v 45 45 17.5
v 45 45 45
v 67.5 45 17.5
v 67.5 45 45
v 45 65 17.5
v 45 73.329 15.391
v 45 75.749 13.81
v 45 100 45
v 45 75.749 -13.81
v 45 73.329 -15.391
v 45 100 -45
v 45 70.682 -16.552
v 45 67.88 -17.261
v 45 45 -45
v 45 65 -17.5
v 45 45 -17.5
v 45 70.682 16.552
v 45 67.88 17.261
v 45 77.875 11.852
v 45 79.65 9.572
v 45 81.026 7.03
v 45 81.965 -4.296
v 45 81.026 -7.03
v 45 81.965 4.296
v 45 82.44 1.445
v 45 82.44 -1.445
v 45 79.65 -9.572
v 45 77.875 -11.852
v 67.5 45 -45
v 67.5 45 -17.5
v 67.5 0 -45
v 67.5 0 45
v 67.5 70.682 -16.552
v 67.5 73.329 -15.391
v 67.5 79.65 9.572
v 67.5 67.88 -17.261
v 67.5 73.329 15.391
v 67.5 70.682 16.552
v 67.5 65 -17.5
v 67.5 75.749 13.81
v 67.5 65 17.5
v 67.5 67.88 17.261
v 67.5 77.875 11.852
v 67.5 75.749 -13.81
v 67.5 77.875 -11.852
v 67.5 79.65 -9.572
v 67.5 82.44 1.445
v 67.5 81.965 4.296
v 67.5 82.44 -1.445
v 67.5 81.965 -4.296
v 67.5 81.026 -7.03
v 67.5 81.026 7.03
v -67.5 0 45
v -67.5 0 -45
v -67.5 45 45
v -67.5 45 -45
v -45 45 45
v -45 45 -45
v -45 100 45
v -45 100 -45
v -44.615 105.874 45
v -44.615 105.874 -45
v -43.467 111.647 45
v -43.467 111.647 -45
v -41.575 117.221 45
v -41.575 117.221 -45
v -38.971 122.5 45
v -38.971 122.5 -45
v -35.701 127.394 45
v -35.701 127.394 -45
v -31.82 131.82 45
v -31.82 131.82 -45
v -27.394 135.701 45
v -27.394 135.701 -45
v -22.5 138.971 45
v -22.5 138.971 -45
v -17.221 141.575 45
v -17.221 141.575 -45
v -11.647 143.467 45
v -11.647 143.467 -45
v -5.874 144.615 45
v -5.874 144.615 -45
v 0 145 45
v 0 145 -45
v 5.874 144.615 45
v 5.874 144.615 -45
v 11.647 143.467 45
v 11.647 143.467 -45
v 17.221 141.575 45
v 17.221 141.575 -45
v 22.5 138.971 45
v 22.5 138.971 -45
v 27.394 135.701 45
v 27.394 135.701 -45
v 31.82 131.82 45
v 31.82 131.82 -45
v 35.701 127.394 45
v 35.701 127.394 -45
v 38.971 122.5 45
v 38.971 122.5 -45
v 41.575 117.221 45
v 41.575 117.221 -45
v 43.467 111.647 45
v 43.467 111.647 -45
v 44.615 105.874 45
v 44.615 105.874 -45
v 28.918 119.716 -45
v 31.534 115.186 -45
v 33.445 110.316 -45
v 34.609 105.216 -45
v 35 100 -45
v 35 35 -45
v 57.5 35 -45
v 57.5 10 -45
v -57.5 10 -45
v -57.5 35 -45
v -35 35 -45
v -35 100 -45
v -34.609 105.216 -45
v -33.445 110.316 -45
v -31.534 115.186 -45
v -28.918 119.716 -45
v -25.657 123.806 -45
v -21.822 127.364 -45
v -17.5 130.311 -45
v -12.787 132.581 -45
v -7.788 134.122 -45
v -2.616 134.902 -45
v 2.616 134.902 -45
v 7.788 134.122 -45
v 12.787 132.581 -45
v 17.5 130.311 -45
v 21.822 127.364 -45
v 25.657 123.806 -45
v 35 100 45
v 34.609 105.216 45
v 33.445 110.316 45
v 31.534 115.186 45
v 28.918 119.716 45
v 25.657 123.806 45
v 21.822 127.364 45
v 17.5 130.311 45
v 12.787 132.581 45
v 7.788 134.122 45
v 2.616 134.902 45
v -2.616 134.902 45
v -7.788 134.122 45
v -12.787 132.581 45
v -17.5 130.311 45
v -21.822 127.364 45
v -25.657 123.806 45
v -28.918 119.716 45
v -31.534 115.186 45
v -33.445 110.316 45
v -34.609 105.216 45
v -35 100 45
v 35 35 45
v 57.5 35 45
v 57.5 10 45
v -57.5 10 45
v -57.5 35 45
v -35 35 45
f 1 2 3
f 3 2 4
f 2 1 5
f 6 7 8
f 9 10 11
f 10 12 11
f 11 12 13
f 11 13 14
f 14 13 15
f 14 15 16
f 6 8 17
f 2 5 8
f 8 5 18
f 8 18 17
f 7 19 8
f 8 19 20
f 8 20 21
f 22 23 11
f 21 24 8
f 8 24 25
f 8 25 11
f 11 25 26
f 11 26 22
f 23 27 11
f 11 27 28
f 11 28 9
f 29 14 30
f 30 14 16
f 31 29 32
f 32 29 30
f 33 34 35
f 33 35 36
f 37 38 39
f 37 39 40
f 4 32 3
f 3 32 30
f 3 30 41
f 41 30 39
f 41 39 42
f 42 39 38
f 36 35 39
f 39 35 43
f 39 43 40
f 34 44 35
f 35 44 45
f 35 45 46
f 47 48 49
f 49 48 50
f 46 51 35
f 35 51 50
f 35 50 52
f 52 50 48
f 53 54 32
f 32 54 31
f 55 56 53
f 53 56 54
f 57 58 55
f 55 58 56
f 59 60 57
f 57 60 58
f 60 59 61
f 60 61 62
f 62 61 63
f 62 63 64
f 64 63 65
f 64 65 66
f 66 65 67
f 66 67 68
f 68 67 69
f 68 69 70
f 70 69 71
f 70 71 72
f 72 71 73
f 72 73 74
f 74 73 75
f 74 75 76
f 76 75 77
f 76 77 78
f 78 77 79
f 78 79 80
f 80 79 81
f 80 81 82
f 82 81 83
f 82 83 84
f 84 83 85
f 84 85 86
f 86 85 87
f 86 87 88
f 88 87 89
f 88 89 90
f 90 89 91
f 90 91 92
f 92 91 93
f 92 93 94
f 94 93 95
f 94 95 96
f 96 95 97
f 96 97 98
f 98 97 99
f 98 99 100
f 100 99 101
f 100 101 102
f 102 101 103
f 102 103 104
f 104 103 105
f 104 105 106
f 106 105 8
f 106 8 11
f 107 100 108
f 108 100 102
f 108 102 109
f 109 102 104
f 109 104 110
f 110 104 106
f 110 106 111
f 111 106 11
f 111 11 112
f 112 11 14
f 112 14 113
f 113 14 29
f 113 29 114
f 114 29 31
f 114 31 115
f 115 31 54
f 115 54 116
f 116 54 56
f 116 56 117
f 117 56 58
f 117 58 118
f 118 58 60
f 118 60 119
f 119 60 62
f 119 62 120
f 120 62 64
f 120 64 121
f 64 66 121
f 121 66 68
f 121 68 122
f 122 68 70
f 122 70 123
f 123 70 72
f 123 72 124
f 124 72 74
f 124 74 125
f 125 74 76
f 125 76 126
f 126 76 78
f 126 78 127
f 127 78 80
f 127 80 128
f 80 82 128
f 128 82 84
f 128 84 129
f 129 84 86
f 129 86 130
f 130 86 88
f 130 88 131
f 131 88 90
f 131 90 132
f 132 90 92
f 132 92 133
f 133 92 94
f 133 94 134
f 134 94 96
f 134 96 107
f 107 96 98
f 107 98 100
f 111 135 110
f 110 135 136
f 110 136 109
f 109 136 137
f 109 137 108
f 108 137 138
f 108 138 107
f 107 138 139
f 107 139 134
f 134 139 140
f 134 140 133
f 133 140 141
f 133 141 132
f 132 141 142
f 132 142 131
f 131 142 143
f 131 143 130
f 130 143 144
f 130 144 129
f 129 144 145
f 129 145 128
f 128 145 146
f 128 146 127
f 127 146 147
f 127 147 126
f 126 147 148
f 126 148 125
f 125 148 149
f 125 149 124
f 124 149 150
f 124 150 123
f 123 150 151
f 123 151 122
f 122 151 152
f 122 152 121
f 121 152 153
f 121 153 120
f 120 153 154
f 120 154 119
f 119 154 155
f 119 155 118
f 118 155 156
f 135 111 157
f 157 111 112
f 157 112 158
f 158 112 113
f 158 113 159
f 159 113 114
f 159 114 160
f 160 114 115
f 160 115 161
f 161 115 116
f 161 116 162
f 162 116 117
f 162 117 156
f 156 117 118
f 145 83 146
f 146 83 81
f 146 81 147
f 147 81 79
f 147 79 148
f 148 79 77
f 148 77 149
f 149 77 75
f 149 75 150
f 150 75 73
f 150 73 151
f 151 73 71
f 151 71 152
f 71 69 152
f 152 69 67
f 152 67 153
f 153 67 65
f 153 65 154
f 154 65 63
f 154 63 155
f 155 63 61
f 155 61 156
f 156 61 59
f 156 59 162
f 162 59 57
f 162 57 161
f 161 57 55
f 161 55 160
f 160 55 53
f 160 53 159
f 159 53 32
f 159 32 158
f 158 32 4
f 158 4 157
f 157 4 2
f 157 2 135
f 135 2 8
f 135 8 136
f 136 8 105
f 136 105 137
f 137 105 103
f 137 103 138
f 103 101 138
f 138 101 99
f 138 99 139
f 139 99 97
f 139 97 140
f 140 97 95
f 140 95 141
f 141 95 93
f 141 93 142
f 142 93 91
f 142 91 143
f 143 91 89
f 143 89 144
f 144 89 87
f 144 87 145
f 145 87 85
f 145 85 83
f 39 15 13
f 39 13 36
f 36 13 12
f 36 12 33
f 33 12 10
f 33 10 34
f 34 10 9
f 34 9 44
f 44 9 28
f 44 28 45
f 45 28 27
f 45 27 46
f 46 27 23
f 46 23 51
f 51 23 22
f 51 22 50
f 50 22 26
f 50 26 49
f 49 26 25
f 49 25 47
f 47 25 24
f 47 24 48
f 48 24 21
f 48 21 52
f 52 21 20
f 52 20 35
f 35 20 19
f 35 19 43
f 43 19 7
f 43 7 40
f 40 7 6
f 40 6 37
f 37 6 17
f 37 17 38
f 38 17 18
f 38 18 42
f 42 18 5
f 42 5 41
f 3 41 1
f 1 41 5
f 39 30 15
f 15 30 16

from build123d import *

# Parameters (mm, degrees)
BOSS_EXTRUDE1_DEPTH      = 45
BOSS_EXTRUDE1_DEPTH_BACK = 45
BOSS_EXTRUDE2_DEPTH      = 22.5


with BuildPart() as part:
    # Sketch1 → Boss-Extrude1 (new, two sides: drawn at the far end of the back side and taken through both)
    with BuildSketch(Plane.XY.offset(-BOSS_EXTRUDE1_DEPTH_BACK)):
        with BuildLine():
            Line((-67.5, 0), (67.5, 0))
            Line((67.5, 0), (67.5, 45))
            Line((67.5, 45), (45, 45))
            Line((45, 45), (45, 100))
            ThreePointArc((45, 100), (0, 145), (-45, 100))
            Line((-45, 100), (-45, 45))
            Line((-45, 45), (-67.5, 45))
            Line((-67.5, 45), (-67.5, 0))
        make_face()
        with BuildLine():
            Line((-35, 35), (-35, 100))
            ThreePointArc((-35, 100), (0, 135), (35, 100))
            Line((35, 100), (35, 35))
            Line((35, 35), (57.5, 35))
            Line((57.5, 35), (57.5, 10))
            Line((57.5, 10), (-57.5, 10))
            Line((-57.5, 10), (-57.5, 35))
            Line((-57.5, 35), (-35, 35))
        make_face(mode=Mode.SUBTRACT)
    extrude(amount=BOSS_EXTRUDE1_DEPTH + BOSS_EXTRUDE1_DEPTH_BACK)

    # Sketch2 → Boss-Extrude2 (add)
    with BuildSketch(Plane(origin=(45, 0, 0), x_dir=(0, 0, -1), z_dir=(1, 0, 0))):
        with BuildLine():
            Line((17.5, 65), (17.5, 45))
            Line((17.5, 45), (-17.5, 45))
            Line((-17.5, 45), (-17.5, 65))
            ThreePointArc((-17.5, 65), (0, 82.5), (17.5, 65))
        make_face()
    extrude(amount=BOSS_EXTRUDE2_DEPTH)


solid = part.part
